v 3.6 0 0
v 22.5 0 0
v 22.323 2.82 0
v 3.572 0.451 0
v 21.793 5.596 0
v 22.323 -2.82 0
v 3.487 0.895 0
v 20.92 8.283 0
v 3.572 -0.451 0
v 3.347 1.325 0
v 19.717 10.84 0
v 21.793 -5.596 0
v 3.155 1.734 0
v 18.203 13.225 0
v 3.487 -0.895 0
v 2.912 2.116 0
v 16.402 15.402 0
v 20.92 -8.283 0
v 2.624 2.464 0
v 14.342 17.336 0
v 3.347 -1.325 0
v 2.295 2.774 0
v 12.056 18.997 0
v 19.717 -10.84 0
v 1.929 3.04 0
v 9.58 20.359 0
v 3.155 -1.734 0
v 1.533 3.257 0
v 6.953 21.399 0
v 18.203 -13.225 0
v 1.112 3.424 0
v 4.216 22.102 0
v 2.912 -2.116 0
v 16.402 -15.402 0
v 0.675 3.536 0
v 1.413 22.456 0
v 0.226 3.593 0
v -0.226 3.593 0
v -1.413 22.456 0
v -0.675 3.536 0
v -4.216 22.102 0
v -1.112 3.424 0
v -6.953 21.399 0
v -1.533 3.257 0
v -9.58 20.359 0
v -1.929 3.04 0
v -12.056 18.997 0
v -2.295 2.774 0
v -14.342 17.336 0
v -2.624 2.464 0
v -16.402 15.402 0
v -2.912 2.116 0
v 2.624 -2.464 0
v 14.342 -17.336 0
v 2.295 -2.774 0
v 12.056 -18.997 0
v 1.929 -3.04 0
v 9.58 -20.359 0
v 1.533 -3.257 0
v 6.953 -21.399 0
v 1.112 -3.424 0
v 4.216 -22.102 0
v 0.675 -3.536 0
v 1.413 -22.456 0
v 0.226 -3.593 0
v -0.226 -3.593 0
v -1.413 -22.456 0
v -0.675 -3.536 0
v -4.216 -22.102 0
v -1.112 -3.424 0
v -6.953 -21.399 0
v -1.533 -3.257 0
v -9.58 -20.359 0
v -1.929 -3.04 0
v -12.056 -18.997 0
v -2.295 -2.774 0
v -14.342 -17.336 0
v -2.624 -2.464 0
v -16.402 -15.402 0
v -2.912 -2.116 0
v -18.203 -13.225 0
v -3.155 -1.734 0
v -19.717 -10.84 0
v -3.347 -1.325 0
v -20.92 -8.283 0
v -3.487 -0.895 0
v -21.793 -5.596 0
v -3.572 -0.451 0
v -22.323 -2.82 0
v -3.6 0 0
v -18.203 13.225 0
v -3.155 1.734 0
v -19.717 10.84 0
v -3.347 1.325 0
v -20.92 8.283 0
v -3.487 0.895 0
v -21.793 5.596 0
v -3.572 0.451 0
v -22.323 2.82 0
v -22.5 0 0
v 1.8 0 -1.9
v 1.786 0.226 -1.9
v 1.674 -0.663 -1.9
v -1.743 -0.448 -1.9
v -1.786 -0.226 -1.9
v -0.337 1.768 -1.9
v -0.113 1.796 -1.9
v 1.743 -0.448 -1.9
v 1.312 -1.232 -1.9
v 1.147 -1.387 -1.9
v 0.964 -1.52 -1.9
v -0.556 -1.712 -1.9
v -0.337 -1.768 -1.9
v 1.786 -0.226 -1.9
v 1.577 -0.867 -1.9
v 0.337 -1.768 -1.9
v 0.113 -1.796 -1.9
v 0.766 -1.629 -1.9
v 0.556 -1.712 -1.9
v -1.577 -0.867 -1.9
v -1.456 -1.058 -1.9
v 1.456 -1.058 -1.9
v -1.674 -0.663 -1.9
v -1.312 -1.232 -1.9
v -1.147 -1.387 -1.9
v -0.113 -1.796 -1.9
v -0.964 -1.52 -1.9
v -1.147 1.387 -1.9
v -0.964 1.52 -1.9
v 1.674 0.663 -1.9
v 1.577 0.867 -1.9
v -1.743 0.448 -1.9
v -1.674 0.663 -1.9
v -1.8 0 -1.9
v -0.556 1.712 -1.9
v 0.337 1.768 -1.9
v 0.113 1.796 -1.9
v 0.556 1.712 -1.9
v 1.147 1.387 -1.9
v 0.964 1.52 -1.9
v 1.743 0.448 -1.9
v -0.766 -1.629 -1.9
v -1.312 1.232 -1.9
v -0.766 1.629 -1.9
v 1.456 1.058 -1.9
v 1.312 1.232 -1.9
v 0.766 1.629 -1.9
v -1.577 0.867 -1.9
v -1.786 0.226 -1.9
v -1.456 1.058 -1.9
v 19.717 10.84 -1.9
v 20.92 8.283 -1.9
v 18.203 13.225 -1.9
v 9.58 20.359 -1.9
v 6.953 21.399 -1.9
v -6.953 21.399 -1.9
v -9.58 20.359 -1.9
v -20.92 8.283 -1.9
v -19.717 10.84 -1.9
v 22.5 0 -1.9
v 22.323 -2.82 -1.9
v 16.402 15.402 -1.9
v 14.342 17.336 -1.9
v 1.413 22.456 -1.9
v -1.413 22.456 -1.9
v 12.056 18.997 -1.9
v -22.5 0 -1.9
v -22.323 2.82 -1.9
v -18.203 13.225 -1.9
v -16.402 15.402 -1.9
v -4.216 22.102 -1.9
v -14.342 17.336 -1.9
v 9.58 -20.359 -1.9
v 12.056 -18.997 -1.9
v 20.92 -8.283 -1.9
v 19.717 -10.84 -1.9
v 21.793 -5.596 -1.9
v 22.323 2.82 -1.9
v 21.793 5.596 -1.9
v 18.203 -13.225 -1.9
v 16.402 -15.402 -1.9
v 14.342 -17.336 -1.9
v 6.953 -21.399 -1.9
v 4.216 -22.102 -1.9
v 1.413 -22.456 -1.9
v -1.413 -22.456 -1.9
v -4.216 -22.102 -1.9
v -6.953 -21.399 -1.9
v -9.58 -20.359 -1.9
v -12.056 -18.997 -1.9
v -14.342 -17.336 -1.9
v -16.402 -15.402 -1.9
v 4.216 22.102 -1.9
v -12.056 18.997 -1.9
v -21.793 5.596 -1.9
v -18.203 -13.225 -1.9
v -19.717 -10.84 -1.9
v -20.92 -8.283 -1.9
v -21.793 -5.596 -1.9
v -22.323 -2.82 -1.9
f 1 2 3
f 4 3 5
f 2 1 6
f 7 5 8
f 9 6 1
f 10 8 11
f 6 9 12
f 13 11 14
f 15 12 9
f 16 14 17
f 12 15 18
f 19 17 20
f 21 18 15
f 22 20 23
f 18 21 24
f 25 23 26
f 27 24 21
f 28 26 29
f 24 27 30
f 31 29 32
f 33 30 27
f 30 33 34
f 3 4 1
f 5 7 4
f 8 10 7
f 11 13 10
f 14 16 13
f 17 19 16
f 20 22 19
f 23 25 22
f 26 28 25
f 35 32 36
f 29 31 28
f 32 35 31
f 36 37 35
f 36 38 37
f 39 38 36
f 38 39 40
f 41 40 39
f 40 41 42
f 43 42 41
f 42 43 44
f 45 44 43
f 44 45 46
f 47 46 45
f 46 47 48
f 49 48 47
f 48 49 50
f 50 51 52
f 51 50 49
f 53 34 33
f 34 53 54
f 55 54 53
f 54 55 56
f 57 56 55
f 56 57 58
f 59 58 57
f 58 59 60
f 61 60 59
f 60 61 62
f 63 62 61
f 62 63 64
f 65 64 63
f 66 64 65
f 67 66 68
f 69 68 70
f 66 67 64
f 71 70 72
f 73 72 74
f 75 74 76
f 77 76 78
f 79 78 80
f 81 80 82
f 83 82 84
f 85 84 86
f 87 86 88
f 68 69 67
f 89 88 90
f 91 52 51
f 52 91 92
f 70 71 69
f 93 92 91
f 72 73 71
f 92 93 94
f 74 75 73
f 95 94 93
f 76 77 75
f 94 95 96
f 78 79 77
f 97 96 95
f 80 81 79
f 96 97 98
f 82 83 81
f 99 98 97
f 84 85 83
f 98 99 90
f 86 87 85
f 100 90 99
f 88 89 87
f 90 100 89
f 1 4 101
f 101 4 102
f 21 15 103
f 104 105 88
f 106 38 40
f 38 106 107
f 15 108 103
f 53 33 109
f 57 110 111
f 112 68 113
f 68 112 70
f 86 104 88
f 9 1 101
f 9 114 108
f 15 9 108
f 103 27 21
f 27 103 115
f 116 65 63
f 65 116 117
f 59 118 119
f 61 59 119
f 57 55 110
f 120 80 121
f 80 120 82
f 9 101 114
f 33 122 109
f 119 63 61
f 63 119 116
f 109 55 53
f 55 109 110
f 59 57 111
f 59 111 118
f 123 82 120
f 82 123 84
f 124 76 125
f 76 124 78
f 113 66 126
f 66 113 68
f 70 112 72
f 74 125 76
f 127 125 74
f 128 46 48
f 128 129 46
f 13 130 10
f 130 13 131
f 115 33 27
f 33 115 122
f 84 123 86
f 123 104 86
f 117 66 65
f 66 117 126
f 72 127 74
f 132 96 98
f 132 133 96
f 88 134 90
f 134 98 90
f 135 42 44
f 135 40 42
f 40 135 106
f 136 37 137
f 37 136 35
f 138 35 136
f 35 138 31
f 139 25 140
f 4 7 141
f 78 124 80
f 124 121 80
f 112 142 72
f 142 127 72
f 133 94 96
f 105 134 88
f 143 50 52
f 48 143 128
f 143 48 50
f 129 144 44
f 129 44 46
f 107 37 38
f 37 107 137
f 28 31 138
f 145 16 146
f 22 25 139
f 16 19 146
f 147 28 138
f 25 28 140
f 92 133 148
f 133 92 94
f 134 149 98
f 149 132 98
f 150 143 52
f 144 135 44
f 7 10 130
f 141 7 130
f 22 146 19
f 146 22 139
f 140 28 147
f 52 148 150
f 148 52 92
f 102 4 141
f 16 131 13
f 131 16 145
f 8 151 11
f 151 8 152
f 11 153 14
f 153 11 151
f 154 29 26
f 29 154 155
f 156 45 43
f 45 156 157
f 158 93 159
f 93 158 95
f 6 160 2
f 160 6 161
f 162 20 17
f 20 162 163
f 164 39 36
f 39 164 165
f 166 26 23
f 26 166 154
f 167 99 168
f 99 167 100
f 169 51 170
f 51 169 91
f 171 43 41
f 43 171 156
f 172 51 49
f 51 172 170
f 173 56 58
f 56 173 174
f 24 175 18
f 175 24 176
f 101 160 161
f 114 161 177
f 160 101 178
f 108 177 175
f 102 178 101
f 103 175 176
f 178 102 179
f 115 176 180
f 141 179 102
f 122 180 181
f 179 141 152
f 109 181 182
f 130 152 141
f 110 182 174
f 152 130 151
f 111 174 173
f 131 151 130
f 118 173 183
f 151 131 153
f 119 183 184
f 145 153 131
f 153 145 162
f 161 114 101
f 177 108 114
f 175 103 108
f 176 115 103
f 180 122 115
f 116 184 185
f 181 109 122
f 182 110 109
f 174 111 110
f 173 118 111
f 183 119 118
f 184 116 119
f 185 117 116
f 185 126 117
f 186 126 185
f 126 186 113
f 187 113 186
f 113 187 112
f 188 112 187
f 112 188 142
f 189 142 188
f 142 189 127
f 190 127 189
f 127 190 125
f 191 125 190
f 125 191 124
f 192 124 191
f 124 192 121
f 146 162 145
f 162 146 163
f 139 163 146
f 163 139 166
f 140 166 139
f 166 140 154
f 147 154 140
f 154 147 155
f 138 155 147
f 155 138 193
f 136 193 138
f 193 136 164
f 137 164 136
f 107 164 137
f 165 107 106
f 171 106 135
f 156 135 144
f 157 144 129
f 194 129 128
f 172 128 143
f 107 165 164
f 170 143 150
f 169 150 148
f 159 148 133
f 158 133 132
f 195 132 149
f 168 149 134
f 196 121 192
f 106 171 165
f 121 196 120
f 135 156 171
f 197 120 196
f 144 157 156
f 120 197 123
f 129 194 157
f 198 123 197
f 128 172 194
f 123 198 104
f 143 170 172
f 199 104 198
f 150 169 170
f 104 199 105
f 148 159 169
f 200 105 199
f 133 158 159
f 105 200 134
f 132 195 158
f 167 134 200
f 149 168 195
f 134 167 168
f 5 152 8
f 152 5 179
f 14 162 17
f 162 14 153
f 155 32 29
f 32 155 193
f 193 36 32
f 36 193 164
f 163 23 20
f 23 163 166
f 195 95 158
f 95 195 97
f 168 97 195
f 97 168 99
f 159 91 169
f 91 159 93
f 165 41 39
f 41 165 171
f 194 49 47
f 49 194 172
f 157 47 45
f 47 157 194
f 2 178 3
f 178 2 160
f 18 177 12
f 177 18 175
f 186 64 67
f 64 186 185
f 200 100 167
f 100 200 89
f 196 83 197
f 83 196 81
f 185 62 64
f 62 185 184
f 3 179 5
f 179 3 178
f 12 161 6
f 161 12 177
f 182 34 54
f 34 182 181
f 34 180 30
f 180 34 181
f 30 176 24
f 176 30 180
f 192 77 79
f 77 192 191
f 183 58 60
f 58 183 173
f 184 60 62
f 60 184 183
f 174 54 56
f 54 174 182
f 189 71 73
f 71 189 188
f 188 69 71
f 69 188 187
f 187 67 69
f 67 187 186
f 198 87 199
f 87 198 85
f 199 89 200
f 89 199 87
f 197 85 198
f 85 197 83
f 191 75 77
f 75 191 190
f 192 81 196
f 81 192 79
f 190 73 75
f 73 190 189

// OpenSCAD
$fn = 50;

difference() {
	union() {
		translate(v = [0, 0, -1.9]) {
			cylinder(h = 1.9, r = 22.5);
		}
	}
	union() {
		translate(v = [0, 0, 0]) {
			rotate(a = [0, 0, 0]) {
				difference() {
					union() {
						translate(v = [0, 0, -4.9]) {
							cylinder(h = 4.9, r = 1.5);
						}
						translate(v = [0, 0, -1.9]) {
							cylinder(h = 1.9, r1 = 1.8, r2 = 3.6);
						}
						translate(v = [0, 0, -4.9]) {
							cylinder(h = 4.9, r = 1.8);
						}
						translate(v = [0, 0, -4.9]) {
							cylinder(h = 4.9, r = 1.5);
						}
					}
					union();
				}
			}
		}
	}
}
